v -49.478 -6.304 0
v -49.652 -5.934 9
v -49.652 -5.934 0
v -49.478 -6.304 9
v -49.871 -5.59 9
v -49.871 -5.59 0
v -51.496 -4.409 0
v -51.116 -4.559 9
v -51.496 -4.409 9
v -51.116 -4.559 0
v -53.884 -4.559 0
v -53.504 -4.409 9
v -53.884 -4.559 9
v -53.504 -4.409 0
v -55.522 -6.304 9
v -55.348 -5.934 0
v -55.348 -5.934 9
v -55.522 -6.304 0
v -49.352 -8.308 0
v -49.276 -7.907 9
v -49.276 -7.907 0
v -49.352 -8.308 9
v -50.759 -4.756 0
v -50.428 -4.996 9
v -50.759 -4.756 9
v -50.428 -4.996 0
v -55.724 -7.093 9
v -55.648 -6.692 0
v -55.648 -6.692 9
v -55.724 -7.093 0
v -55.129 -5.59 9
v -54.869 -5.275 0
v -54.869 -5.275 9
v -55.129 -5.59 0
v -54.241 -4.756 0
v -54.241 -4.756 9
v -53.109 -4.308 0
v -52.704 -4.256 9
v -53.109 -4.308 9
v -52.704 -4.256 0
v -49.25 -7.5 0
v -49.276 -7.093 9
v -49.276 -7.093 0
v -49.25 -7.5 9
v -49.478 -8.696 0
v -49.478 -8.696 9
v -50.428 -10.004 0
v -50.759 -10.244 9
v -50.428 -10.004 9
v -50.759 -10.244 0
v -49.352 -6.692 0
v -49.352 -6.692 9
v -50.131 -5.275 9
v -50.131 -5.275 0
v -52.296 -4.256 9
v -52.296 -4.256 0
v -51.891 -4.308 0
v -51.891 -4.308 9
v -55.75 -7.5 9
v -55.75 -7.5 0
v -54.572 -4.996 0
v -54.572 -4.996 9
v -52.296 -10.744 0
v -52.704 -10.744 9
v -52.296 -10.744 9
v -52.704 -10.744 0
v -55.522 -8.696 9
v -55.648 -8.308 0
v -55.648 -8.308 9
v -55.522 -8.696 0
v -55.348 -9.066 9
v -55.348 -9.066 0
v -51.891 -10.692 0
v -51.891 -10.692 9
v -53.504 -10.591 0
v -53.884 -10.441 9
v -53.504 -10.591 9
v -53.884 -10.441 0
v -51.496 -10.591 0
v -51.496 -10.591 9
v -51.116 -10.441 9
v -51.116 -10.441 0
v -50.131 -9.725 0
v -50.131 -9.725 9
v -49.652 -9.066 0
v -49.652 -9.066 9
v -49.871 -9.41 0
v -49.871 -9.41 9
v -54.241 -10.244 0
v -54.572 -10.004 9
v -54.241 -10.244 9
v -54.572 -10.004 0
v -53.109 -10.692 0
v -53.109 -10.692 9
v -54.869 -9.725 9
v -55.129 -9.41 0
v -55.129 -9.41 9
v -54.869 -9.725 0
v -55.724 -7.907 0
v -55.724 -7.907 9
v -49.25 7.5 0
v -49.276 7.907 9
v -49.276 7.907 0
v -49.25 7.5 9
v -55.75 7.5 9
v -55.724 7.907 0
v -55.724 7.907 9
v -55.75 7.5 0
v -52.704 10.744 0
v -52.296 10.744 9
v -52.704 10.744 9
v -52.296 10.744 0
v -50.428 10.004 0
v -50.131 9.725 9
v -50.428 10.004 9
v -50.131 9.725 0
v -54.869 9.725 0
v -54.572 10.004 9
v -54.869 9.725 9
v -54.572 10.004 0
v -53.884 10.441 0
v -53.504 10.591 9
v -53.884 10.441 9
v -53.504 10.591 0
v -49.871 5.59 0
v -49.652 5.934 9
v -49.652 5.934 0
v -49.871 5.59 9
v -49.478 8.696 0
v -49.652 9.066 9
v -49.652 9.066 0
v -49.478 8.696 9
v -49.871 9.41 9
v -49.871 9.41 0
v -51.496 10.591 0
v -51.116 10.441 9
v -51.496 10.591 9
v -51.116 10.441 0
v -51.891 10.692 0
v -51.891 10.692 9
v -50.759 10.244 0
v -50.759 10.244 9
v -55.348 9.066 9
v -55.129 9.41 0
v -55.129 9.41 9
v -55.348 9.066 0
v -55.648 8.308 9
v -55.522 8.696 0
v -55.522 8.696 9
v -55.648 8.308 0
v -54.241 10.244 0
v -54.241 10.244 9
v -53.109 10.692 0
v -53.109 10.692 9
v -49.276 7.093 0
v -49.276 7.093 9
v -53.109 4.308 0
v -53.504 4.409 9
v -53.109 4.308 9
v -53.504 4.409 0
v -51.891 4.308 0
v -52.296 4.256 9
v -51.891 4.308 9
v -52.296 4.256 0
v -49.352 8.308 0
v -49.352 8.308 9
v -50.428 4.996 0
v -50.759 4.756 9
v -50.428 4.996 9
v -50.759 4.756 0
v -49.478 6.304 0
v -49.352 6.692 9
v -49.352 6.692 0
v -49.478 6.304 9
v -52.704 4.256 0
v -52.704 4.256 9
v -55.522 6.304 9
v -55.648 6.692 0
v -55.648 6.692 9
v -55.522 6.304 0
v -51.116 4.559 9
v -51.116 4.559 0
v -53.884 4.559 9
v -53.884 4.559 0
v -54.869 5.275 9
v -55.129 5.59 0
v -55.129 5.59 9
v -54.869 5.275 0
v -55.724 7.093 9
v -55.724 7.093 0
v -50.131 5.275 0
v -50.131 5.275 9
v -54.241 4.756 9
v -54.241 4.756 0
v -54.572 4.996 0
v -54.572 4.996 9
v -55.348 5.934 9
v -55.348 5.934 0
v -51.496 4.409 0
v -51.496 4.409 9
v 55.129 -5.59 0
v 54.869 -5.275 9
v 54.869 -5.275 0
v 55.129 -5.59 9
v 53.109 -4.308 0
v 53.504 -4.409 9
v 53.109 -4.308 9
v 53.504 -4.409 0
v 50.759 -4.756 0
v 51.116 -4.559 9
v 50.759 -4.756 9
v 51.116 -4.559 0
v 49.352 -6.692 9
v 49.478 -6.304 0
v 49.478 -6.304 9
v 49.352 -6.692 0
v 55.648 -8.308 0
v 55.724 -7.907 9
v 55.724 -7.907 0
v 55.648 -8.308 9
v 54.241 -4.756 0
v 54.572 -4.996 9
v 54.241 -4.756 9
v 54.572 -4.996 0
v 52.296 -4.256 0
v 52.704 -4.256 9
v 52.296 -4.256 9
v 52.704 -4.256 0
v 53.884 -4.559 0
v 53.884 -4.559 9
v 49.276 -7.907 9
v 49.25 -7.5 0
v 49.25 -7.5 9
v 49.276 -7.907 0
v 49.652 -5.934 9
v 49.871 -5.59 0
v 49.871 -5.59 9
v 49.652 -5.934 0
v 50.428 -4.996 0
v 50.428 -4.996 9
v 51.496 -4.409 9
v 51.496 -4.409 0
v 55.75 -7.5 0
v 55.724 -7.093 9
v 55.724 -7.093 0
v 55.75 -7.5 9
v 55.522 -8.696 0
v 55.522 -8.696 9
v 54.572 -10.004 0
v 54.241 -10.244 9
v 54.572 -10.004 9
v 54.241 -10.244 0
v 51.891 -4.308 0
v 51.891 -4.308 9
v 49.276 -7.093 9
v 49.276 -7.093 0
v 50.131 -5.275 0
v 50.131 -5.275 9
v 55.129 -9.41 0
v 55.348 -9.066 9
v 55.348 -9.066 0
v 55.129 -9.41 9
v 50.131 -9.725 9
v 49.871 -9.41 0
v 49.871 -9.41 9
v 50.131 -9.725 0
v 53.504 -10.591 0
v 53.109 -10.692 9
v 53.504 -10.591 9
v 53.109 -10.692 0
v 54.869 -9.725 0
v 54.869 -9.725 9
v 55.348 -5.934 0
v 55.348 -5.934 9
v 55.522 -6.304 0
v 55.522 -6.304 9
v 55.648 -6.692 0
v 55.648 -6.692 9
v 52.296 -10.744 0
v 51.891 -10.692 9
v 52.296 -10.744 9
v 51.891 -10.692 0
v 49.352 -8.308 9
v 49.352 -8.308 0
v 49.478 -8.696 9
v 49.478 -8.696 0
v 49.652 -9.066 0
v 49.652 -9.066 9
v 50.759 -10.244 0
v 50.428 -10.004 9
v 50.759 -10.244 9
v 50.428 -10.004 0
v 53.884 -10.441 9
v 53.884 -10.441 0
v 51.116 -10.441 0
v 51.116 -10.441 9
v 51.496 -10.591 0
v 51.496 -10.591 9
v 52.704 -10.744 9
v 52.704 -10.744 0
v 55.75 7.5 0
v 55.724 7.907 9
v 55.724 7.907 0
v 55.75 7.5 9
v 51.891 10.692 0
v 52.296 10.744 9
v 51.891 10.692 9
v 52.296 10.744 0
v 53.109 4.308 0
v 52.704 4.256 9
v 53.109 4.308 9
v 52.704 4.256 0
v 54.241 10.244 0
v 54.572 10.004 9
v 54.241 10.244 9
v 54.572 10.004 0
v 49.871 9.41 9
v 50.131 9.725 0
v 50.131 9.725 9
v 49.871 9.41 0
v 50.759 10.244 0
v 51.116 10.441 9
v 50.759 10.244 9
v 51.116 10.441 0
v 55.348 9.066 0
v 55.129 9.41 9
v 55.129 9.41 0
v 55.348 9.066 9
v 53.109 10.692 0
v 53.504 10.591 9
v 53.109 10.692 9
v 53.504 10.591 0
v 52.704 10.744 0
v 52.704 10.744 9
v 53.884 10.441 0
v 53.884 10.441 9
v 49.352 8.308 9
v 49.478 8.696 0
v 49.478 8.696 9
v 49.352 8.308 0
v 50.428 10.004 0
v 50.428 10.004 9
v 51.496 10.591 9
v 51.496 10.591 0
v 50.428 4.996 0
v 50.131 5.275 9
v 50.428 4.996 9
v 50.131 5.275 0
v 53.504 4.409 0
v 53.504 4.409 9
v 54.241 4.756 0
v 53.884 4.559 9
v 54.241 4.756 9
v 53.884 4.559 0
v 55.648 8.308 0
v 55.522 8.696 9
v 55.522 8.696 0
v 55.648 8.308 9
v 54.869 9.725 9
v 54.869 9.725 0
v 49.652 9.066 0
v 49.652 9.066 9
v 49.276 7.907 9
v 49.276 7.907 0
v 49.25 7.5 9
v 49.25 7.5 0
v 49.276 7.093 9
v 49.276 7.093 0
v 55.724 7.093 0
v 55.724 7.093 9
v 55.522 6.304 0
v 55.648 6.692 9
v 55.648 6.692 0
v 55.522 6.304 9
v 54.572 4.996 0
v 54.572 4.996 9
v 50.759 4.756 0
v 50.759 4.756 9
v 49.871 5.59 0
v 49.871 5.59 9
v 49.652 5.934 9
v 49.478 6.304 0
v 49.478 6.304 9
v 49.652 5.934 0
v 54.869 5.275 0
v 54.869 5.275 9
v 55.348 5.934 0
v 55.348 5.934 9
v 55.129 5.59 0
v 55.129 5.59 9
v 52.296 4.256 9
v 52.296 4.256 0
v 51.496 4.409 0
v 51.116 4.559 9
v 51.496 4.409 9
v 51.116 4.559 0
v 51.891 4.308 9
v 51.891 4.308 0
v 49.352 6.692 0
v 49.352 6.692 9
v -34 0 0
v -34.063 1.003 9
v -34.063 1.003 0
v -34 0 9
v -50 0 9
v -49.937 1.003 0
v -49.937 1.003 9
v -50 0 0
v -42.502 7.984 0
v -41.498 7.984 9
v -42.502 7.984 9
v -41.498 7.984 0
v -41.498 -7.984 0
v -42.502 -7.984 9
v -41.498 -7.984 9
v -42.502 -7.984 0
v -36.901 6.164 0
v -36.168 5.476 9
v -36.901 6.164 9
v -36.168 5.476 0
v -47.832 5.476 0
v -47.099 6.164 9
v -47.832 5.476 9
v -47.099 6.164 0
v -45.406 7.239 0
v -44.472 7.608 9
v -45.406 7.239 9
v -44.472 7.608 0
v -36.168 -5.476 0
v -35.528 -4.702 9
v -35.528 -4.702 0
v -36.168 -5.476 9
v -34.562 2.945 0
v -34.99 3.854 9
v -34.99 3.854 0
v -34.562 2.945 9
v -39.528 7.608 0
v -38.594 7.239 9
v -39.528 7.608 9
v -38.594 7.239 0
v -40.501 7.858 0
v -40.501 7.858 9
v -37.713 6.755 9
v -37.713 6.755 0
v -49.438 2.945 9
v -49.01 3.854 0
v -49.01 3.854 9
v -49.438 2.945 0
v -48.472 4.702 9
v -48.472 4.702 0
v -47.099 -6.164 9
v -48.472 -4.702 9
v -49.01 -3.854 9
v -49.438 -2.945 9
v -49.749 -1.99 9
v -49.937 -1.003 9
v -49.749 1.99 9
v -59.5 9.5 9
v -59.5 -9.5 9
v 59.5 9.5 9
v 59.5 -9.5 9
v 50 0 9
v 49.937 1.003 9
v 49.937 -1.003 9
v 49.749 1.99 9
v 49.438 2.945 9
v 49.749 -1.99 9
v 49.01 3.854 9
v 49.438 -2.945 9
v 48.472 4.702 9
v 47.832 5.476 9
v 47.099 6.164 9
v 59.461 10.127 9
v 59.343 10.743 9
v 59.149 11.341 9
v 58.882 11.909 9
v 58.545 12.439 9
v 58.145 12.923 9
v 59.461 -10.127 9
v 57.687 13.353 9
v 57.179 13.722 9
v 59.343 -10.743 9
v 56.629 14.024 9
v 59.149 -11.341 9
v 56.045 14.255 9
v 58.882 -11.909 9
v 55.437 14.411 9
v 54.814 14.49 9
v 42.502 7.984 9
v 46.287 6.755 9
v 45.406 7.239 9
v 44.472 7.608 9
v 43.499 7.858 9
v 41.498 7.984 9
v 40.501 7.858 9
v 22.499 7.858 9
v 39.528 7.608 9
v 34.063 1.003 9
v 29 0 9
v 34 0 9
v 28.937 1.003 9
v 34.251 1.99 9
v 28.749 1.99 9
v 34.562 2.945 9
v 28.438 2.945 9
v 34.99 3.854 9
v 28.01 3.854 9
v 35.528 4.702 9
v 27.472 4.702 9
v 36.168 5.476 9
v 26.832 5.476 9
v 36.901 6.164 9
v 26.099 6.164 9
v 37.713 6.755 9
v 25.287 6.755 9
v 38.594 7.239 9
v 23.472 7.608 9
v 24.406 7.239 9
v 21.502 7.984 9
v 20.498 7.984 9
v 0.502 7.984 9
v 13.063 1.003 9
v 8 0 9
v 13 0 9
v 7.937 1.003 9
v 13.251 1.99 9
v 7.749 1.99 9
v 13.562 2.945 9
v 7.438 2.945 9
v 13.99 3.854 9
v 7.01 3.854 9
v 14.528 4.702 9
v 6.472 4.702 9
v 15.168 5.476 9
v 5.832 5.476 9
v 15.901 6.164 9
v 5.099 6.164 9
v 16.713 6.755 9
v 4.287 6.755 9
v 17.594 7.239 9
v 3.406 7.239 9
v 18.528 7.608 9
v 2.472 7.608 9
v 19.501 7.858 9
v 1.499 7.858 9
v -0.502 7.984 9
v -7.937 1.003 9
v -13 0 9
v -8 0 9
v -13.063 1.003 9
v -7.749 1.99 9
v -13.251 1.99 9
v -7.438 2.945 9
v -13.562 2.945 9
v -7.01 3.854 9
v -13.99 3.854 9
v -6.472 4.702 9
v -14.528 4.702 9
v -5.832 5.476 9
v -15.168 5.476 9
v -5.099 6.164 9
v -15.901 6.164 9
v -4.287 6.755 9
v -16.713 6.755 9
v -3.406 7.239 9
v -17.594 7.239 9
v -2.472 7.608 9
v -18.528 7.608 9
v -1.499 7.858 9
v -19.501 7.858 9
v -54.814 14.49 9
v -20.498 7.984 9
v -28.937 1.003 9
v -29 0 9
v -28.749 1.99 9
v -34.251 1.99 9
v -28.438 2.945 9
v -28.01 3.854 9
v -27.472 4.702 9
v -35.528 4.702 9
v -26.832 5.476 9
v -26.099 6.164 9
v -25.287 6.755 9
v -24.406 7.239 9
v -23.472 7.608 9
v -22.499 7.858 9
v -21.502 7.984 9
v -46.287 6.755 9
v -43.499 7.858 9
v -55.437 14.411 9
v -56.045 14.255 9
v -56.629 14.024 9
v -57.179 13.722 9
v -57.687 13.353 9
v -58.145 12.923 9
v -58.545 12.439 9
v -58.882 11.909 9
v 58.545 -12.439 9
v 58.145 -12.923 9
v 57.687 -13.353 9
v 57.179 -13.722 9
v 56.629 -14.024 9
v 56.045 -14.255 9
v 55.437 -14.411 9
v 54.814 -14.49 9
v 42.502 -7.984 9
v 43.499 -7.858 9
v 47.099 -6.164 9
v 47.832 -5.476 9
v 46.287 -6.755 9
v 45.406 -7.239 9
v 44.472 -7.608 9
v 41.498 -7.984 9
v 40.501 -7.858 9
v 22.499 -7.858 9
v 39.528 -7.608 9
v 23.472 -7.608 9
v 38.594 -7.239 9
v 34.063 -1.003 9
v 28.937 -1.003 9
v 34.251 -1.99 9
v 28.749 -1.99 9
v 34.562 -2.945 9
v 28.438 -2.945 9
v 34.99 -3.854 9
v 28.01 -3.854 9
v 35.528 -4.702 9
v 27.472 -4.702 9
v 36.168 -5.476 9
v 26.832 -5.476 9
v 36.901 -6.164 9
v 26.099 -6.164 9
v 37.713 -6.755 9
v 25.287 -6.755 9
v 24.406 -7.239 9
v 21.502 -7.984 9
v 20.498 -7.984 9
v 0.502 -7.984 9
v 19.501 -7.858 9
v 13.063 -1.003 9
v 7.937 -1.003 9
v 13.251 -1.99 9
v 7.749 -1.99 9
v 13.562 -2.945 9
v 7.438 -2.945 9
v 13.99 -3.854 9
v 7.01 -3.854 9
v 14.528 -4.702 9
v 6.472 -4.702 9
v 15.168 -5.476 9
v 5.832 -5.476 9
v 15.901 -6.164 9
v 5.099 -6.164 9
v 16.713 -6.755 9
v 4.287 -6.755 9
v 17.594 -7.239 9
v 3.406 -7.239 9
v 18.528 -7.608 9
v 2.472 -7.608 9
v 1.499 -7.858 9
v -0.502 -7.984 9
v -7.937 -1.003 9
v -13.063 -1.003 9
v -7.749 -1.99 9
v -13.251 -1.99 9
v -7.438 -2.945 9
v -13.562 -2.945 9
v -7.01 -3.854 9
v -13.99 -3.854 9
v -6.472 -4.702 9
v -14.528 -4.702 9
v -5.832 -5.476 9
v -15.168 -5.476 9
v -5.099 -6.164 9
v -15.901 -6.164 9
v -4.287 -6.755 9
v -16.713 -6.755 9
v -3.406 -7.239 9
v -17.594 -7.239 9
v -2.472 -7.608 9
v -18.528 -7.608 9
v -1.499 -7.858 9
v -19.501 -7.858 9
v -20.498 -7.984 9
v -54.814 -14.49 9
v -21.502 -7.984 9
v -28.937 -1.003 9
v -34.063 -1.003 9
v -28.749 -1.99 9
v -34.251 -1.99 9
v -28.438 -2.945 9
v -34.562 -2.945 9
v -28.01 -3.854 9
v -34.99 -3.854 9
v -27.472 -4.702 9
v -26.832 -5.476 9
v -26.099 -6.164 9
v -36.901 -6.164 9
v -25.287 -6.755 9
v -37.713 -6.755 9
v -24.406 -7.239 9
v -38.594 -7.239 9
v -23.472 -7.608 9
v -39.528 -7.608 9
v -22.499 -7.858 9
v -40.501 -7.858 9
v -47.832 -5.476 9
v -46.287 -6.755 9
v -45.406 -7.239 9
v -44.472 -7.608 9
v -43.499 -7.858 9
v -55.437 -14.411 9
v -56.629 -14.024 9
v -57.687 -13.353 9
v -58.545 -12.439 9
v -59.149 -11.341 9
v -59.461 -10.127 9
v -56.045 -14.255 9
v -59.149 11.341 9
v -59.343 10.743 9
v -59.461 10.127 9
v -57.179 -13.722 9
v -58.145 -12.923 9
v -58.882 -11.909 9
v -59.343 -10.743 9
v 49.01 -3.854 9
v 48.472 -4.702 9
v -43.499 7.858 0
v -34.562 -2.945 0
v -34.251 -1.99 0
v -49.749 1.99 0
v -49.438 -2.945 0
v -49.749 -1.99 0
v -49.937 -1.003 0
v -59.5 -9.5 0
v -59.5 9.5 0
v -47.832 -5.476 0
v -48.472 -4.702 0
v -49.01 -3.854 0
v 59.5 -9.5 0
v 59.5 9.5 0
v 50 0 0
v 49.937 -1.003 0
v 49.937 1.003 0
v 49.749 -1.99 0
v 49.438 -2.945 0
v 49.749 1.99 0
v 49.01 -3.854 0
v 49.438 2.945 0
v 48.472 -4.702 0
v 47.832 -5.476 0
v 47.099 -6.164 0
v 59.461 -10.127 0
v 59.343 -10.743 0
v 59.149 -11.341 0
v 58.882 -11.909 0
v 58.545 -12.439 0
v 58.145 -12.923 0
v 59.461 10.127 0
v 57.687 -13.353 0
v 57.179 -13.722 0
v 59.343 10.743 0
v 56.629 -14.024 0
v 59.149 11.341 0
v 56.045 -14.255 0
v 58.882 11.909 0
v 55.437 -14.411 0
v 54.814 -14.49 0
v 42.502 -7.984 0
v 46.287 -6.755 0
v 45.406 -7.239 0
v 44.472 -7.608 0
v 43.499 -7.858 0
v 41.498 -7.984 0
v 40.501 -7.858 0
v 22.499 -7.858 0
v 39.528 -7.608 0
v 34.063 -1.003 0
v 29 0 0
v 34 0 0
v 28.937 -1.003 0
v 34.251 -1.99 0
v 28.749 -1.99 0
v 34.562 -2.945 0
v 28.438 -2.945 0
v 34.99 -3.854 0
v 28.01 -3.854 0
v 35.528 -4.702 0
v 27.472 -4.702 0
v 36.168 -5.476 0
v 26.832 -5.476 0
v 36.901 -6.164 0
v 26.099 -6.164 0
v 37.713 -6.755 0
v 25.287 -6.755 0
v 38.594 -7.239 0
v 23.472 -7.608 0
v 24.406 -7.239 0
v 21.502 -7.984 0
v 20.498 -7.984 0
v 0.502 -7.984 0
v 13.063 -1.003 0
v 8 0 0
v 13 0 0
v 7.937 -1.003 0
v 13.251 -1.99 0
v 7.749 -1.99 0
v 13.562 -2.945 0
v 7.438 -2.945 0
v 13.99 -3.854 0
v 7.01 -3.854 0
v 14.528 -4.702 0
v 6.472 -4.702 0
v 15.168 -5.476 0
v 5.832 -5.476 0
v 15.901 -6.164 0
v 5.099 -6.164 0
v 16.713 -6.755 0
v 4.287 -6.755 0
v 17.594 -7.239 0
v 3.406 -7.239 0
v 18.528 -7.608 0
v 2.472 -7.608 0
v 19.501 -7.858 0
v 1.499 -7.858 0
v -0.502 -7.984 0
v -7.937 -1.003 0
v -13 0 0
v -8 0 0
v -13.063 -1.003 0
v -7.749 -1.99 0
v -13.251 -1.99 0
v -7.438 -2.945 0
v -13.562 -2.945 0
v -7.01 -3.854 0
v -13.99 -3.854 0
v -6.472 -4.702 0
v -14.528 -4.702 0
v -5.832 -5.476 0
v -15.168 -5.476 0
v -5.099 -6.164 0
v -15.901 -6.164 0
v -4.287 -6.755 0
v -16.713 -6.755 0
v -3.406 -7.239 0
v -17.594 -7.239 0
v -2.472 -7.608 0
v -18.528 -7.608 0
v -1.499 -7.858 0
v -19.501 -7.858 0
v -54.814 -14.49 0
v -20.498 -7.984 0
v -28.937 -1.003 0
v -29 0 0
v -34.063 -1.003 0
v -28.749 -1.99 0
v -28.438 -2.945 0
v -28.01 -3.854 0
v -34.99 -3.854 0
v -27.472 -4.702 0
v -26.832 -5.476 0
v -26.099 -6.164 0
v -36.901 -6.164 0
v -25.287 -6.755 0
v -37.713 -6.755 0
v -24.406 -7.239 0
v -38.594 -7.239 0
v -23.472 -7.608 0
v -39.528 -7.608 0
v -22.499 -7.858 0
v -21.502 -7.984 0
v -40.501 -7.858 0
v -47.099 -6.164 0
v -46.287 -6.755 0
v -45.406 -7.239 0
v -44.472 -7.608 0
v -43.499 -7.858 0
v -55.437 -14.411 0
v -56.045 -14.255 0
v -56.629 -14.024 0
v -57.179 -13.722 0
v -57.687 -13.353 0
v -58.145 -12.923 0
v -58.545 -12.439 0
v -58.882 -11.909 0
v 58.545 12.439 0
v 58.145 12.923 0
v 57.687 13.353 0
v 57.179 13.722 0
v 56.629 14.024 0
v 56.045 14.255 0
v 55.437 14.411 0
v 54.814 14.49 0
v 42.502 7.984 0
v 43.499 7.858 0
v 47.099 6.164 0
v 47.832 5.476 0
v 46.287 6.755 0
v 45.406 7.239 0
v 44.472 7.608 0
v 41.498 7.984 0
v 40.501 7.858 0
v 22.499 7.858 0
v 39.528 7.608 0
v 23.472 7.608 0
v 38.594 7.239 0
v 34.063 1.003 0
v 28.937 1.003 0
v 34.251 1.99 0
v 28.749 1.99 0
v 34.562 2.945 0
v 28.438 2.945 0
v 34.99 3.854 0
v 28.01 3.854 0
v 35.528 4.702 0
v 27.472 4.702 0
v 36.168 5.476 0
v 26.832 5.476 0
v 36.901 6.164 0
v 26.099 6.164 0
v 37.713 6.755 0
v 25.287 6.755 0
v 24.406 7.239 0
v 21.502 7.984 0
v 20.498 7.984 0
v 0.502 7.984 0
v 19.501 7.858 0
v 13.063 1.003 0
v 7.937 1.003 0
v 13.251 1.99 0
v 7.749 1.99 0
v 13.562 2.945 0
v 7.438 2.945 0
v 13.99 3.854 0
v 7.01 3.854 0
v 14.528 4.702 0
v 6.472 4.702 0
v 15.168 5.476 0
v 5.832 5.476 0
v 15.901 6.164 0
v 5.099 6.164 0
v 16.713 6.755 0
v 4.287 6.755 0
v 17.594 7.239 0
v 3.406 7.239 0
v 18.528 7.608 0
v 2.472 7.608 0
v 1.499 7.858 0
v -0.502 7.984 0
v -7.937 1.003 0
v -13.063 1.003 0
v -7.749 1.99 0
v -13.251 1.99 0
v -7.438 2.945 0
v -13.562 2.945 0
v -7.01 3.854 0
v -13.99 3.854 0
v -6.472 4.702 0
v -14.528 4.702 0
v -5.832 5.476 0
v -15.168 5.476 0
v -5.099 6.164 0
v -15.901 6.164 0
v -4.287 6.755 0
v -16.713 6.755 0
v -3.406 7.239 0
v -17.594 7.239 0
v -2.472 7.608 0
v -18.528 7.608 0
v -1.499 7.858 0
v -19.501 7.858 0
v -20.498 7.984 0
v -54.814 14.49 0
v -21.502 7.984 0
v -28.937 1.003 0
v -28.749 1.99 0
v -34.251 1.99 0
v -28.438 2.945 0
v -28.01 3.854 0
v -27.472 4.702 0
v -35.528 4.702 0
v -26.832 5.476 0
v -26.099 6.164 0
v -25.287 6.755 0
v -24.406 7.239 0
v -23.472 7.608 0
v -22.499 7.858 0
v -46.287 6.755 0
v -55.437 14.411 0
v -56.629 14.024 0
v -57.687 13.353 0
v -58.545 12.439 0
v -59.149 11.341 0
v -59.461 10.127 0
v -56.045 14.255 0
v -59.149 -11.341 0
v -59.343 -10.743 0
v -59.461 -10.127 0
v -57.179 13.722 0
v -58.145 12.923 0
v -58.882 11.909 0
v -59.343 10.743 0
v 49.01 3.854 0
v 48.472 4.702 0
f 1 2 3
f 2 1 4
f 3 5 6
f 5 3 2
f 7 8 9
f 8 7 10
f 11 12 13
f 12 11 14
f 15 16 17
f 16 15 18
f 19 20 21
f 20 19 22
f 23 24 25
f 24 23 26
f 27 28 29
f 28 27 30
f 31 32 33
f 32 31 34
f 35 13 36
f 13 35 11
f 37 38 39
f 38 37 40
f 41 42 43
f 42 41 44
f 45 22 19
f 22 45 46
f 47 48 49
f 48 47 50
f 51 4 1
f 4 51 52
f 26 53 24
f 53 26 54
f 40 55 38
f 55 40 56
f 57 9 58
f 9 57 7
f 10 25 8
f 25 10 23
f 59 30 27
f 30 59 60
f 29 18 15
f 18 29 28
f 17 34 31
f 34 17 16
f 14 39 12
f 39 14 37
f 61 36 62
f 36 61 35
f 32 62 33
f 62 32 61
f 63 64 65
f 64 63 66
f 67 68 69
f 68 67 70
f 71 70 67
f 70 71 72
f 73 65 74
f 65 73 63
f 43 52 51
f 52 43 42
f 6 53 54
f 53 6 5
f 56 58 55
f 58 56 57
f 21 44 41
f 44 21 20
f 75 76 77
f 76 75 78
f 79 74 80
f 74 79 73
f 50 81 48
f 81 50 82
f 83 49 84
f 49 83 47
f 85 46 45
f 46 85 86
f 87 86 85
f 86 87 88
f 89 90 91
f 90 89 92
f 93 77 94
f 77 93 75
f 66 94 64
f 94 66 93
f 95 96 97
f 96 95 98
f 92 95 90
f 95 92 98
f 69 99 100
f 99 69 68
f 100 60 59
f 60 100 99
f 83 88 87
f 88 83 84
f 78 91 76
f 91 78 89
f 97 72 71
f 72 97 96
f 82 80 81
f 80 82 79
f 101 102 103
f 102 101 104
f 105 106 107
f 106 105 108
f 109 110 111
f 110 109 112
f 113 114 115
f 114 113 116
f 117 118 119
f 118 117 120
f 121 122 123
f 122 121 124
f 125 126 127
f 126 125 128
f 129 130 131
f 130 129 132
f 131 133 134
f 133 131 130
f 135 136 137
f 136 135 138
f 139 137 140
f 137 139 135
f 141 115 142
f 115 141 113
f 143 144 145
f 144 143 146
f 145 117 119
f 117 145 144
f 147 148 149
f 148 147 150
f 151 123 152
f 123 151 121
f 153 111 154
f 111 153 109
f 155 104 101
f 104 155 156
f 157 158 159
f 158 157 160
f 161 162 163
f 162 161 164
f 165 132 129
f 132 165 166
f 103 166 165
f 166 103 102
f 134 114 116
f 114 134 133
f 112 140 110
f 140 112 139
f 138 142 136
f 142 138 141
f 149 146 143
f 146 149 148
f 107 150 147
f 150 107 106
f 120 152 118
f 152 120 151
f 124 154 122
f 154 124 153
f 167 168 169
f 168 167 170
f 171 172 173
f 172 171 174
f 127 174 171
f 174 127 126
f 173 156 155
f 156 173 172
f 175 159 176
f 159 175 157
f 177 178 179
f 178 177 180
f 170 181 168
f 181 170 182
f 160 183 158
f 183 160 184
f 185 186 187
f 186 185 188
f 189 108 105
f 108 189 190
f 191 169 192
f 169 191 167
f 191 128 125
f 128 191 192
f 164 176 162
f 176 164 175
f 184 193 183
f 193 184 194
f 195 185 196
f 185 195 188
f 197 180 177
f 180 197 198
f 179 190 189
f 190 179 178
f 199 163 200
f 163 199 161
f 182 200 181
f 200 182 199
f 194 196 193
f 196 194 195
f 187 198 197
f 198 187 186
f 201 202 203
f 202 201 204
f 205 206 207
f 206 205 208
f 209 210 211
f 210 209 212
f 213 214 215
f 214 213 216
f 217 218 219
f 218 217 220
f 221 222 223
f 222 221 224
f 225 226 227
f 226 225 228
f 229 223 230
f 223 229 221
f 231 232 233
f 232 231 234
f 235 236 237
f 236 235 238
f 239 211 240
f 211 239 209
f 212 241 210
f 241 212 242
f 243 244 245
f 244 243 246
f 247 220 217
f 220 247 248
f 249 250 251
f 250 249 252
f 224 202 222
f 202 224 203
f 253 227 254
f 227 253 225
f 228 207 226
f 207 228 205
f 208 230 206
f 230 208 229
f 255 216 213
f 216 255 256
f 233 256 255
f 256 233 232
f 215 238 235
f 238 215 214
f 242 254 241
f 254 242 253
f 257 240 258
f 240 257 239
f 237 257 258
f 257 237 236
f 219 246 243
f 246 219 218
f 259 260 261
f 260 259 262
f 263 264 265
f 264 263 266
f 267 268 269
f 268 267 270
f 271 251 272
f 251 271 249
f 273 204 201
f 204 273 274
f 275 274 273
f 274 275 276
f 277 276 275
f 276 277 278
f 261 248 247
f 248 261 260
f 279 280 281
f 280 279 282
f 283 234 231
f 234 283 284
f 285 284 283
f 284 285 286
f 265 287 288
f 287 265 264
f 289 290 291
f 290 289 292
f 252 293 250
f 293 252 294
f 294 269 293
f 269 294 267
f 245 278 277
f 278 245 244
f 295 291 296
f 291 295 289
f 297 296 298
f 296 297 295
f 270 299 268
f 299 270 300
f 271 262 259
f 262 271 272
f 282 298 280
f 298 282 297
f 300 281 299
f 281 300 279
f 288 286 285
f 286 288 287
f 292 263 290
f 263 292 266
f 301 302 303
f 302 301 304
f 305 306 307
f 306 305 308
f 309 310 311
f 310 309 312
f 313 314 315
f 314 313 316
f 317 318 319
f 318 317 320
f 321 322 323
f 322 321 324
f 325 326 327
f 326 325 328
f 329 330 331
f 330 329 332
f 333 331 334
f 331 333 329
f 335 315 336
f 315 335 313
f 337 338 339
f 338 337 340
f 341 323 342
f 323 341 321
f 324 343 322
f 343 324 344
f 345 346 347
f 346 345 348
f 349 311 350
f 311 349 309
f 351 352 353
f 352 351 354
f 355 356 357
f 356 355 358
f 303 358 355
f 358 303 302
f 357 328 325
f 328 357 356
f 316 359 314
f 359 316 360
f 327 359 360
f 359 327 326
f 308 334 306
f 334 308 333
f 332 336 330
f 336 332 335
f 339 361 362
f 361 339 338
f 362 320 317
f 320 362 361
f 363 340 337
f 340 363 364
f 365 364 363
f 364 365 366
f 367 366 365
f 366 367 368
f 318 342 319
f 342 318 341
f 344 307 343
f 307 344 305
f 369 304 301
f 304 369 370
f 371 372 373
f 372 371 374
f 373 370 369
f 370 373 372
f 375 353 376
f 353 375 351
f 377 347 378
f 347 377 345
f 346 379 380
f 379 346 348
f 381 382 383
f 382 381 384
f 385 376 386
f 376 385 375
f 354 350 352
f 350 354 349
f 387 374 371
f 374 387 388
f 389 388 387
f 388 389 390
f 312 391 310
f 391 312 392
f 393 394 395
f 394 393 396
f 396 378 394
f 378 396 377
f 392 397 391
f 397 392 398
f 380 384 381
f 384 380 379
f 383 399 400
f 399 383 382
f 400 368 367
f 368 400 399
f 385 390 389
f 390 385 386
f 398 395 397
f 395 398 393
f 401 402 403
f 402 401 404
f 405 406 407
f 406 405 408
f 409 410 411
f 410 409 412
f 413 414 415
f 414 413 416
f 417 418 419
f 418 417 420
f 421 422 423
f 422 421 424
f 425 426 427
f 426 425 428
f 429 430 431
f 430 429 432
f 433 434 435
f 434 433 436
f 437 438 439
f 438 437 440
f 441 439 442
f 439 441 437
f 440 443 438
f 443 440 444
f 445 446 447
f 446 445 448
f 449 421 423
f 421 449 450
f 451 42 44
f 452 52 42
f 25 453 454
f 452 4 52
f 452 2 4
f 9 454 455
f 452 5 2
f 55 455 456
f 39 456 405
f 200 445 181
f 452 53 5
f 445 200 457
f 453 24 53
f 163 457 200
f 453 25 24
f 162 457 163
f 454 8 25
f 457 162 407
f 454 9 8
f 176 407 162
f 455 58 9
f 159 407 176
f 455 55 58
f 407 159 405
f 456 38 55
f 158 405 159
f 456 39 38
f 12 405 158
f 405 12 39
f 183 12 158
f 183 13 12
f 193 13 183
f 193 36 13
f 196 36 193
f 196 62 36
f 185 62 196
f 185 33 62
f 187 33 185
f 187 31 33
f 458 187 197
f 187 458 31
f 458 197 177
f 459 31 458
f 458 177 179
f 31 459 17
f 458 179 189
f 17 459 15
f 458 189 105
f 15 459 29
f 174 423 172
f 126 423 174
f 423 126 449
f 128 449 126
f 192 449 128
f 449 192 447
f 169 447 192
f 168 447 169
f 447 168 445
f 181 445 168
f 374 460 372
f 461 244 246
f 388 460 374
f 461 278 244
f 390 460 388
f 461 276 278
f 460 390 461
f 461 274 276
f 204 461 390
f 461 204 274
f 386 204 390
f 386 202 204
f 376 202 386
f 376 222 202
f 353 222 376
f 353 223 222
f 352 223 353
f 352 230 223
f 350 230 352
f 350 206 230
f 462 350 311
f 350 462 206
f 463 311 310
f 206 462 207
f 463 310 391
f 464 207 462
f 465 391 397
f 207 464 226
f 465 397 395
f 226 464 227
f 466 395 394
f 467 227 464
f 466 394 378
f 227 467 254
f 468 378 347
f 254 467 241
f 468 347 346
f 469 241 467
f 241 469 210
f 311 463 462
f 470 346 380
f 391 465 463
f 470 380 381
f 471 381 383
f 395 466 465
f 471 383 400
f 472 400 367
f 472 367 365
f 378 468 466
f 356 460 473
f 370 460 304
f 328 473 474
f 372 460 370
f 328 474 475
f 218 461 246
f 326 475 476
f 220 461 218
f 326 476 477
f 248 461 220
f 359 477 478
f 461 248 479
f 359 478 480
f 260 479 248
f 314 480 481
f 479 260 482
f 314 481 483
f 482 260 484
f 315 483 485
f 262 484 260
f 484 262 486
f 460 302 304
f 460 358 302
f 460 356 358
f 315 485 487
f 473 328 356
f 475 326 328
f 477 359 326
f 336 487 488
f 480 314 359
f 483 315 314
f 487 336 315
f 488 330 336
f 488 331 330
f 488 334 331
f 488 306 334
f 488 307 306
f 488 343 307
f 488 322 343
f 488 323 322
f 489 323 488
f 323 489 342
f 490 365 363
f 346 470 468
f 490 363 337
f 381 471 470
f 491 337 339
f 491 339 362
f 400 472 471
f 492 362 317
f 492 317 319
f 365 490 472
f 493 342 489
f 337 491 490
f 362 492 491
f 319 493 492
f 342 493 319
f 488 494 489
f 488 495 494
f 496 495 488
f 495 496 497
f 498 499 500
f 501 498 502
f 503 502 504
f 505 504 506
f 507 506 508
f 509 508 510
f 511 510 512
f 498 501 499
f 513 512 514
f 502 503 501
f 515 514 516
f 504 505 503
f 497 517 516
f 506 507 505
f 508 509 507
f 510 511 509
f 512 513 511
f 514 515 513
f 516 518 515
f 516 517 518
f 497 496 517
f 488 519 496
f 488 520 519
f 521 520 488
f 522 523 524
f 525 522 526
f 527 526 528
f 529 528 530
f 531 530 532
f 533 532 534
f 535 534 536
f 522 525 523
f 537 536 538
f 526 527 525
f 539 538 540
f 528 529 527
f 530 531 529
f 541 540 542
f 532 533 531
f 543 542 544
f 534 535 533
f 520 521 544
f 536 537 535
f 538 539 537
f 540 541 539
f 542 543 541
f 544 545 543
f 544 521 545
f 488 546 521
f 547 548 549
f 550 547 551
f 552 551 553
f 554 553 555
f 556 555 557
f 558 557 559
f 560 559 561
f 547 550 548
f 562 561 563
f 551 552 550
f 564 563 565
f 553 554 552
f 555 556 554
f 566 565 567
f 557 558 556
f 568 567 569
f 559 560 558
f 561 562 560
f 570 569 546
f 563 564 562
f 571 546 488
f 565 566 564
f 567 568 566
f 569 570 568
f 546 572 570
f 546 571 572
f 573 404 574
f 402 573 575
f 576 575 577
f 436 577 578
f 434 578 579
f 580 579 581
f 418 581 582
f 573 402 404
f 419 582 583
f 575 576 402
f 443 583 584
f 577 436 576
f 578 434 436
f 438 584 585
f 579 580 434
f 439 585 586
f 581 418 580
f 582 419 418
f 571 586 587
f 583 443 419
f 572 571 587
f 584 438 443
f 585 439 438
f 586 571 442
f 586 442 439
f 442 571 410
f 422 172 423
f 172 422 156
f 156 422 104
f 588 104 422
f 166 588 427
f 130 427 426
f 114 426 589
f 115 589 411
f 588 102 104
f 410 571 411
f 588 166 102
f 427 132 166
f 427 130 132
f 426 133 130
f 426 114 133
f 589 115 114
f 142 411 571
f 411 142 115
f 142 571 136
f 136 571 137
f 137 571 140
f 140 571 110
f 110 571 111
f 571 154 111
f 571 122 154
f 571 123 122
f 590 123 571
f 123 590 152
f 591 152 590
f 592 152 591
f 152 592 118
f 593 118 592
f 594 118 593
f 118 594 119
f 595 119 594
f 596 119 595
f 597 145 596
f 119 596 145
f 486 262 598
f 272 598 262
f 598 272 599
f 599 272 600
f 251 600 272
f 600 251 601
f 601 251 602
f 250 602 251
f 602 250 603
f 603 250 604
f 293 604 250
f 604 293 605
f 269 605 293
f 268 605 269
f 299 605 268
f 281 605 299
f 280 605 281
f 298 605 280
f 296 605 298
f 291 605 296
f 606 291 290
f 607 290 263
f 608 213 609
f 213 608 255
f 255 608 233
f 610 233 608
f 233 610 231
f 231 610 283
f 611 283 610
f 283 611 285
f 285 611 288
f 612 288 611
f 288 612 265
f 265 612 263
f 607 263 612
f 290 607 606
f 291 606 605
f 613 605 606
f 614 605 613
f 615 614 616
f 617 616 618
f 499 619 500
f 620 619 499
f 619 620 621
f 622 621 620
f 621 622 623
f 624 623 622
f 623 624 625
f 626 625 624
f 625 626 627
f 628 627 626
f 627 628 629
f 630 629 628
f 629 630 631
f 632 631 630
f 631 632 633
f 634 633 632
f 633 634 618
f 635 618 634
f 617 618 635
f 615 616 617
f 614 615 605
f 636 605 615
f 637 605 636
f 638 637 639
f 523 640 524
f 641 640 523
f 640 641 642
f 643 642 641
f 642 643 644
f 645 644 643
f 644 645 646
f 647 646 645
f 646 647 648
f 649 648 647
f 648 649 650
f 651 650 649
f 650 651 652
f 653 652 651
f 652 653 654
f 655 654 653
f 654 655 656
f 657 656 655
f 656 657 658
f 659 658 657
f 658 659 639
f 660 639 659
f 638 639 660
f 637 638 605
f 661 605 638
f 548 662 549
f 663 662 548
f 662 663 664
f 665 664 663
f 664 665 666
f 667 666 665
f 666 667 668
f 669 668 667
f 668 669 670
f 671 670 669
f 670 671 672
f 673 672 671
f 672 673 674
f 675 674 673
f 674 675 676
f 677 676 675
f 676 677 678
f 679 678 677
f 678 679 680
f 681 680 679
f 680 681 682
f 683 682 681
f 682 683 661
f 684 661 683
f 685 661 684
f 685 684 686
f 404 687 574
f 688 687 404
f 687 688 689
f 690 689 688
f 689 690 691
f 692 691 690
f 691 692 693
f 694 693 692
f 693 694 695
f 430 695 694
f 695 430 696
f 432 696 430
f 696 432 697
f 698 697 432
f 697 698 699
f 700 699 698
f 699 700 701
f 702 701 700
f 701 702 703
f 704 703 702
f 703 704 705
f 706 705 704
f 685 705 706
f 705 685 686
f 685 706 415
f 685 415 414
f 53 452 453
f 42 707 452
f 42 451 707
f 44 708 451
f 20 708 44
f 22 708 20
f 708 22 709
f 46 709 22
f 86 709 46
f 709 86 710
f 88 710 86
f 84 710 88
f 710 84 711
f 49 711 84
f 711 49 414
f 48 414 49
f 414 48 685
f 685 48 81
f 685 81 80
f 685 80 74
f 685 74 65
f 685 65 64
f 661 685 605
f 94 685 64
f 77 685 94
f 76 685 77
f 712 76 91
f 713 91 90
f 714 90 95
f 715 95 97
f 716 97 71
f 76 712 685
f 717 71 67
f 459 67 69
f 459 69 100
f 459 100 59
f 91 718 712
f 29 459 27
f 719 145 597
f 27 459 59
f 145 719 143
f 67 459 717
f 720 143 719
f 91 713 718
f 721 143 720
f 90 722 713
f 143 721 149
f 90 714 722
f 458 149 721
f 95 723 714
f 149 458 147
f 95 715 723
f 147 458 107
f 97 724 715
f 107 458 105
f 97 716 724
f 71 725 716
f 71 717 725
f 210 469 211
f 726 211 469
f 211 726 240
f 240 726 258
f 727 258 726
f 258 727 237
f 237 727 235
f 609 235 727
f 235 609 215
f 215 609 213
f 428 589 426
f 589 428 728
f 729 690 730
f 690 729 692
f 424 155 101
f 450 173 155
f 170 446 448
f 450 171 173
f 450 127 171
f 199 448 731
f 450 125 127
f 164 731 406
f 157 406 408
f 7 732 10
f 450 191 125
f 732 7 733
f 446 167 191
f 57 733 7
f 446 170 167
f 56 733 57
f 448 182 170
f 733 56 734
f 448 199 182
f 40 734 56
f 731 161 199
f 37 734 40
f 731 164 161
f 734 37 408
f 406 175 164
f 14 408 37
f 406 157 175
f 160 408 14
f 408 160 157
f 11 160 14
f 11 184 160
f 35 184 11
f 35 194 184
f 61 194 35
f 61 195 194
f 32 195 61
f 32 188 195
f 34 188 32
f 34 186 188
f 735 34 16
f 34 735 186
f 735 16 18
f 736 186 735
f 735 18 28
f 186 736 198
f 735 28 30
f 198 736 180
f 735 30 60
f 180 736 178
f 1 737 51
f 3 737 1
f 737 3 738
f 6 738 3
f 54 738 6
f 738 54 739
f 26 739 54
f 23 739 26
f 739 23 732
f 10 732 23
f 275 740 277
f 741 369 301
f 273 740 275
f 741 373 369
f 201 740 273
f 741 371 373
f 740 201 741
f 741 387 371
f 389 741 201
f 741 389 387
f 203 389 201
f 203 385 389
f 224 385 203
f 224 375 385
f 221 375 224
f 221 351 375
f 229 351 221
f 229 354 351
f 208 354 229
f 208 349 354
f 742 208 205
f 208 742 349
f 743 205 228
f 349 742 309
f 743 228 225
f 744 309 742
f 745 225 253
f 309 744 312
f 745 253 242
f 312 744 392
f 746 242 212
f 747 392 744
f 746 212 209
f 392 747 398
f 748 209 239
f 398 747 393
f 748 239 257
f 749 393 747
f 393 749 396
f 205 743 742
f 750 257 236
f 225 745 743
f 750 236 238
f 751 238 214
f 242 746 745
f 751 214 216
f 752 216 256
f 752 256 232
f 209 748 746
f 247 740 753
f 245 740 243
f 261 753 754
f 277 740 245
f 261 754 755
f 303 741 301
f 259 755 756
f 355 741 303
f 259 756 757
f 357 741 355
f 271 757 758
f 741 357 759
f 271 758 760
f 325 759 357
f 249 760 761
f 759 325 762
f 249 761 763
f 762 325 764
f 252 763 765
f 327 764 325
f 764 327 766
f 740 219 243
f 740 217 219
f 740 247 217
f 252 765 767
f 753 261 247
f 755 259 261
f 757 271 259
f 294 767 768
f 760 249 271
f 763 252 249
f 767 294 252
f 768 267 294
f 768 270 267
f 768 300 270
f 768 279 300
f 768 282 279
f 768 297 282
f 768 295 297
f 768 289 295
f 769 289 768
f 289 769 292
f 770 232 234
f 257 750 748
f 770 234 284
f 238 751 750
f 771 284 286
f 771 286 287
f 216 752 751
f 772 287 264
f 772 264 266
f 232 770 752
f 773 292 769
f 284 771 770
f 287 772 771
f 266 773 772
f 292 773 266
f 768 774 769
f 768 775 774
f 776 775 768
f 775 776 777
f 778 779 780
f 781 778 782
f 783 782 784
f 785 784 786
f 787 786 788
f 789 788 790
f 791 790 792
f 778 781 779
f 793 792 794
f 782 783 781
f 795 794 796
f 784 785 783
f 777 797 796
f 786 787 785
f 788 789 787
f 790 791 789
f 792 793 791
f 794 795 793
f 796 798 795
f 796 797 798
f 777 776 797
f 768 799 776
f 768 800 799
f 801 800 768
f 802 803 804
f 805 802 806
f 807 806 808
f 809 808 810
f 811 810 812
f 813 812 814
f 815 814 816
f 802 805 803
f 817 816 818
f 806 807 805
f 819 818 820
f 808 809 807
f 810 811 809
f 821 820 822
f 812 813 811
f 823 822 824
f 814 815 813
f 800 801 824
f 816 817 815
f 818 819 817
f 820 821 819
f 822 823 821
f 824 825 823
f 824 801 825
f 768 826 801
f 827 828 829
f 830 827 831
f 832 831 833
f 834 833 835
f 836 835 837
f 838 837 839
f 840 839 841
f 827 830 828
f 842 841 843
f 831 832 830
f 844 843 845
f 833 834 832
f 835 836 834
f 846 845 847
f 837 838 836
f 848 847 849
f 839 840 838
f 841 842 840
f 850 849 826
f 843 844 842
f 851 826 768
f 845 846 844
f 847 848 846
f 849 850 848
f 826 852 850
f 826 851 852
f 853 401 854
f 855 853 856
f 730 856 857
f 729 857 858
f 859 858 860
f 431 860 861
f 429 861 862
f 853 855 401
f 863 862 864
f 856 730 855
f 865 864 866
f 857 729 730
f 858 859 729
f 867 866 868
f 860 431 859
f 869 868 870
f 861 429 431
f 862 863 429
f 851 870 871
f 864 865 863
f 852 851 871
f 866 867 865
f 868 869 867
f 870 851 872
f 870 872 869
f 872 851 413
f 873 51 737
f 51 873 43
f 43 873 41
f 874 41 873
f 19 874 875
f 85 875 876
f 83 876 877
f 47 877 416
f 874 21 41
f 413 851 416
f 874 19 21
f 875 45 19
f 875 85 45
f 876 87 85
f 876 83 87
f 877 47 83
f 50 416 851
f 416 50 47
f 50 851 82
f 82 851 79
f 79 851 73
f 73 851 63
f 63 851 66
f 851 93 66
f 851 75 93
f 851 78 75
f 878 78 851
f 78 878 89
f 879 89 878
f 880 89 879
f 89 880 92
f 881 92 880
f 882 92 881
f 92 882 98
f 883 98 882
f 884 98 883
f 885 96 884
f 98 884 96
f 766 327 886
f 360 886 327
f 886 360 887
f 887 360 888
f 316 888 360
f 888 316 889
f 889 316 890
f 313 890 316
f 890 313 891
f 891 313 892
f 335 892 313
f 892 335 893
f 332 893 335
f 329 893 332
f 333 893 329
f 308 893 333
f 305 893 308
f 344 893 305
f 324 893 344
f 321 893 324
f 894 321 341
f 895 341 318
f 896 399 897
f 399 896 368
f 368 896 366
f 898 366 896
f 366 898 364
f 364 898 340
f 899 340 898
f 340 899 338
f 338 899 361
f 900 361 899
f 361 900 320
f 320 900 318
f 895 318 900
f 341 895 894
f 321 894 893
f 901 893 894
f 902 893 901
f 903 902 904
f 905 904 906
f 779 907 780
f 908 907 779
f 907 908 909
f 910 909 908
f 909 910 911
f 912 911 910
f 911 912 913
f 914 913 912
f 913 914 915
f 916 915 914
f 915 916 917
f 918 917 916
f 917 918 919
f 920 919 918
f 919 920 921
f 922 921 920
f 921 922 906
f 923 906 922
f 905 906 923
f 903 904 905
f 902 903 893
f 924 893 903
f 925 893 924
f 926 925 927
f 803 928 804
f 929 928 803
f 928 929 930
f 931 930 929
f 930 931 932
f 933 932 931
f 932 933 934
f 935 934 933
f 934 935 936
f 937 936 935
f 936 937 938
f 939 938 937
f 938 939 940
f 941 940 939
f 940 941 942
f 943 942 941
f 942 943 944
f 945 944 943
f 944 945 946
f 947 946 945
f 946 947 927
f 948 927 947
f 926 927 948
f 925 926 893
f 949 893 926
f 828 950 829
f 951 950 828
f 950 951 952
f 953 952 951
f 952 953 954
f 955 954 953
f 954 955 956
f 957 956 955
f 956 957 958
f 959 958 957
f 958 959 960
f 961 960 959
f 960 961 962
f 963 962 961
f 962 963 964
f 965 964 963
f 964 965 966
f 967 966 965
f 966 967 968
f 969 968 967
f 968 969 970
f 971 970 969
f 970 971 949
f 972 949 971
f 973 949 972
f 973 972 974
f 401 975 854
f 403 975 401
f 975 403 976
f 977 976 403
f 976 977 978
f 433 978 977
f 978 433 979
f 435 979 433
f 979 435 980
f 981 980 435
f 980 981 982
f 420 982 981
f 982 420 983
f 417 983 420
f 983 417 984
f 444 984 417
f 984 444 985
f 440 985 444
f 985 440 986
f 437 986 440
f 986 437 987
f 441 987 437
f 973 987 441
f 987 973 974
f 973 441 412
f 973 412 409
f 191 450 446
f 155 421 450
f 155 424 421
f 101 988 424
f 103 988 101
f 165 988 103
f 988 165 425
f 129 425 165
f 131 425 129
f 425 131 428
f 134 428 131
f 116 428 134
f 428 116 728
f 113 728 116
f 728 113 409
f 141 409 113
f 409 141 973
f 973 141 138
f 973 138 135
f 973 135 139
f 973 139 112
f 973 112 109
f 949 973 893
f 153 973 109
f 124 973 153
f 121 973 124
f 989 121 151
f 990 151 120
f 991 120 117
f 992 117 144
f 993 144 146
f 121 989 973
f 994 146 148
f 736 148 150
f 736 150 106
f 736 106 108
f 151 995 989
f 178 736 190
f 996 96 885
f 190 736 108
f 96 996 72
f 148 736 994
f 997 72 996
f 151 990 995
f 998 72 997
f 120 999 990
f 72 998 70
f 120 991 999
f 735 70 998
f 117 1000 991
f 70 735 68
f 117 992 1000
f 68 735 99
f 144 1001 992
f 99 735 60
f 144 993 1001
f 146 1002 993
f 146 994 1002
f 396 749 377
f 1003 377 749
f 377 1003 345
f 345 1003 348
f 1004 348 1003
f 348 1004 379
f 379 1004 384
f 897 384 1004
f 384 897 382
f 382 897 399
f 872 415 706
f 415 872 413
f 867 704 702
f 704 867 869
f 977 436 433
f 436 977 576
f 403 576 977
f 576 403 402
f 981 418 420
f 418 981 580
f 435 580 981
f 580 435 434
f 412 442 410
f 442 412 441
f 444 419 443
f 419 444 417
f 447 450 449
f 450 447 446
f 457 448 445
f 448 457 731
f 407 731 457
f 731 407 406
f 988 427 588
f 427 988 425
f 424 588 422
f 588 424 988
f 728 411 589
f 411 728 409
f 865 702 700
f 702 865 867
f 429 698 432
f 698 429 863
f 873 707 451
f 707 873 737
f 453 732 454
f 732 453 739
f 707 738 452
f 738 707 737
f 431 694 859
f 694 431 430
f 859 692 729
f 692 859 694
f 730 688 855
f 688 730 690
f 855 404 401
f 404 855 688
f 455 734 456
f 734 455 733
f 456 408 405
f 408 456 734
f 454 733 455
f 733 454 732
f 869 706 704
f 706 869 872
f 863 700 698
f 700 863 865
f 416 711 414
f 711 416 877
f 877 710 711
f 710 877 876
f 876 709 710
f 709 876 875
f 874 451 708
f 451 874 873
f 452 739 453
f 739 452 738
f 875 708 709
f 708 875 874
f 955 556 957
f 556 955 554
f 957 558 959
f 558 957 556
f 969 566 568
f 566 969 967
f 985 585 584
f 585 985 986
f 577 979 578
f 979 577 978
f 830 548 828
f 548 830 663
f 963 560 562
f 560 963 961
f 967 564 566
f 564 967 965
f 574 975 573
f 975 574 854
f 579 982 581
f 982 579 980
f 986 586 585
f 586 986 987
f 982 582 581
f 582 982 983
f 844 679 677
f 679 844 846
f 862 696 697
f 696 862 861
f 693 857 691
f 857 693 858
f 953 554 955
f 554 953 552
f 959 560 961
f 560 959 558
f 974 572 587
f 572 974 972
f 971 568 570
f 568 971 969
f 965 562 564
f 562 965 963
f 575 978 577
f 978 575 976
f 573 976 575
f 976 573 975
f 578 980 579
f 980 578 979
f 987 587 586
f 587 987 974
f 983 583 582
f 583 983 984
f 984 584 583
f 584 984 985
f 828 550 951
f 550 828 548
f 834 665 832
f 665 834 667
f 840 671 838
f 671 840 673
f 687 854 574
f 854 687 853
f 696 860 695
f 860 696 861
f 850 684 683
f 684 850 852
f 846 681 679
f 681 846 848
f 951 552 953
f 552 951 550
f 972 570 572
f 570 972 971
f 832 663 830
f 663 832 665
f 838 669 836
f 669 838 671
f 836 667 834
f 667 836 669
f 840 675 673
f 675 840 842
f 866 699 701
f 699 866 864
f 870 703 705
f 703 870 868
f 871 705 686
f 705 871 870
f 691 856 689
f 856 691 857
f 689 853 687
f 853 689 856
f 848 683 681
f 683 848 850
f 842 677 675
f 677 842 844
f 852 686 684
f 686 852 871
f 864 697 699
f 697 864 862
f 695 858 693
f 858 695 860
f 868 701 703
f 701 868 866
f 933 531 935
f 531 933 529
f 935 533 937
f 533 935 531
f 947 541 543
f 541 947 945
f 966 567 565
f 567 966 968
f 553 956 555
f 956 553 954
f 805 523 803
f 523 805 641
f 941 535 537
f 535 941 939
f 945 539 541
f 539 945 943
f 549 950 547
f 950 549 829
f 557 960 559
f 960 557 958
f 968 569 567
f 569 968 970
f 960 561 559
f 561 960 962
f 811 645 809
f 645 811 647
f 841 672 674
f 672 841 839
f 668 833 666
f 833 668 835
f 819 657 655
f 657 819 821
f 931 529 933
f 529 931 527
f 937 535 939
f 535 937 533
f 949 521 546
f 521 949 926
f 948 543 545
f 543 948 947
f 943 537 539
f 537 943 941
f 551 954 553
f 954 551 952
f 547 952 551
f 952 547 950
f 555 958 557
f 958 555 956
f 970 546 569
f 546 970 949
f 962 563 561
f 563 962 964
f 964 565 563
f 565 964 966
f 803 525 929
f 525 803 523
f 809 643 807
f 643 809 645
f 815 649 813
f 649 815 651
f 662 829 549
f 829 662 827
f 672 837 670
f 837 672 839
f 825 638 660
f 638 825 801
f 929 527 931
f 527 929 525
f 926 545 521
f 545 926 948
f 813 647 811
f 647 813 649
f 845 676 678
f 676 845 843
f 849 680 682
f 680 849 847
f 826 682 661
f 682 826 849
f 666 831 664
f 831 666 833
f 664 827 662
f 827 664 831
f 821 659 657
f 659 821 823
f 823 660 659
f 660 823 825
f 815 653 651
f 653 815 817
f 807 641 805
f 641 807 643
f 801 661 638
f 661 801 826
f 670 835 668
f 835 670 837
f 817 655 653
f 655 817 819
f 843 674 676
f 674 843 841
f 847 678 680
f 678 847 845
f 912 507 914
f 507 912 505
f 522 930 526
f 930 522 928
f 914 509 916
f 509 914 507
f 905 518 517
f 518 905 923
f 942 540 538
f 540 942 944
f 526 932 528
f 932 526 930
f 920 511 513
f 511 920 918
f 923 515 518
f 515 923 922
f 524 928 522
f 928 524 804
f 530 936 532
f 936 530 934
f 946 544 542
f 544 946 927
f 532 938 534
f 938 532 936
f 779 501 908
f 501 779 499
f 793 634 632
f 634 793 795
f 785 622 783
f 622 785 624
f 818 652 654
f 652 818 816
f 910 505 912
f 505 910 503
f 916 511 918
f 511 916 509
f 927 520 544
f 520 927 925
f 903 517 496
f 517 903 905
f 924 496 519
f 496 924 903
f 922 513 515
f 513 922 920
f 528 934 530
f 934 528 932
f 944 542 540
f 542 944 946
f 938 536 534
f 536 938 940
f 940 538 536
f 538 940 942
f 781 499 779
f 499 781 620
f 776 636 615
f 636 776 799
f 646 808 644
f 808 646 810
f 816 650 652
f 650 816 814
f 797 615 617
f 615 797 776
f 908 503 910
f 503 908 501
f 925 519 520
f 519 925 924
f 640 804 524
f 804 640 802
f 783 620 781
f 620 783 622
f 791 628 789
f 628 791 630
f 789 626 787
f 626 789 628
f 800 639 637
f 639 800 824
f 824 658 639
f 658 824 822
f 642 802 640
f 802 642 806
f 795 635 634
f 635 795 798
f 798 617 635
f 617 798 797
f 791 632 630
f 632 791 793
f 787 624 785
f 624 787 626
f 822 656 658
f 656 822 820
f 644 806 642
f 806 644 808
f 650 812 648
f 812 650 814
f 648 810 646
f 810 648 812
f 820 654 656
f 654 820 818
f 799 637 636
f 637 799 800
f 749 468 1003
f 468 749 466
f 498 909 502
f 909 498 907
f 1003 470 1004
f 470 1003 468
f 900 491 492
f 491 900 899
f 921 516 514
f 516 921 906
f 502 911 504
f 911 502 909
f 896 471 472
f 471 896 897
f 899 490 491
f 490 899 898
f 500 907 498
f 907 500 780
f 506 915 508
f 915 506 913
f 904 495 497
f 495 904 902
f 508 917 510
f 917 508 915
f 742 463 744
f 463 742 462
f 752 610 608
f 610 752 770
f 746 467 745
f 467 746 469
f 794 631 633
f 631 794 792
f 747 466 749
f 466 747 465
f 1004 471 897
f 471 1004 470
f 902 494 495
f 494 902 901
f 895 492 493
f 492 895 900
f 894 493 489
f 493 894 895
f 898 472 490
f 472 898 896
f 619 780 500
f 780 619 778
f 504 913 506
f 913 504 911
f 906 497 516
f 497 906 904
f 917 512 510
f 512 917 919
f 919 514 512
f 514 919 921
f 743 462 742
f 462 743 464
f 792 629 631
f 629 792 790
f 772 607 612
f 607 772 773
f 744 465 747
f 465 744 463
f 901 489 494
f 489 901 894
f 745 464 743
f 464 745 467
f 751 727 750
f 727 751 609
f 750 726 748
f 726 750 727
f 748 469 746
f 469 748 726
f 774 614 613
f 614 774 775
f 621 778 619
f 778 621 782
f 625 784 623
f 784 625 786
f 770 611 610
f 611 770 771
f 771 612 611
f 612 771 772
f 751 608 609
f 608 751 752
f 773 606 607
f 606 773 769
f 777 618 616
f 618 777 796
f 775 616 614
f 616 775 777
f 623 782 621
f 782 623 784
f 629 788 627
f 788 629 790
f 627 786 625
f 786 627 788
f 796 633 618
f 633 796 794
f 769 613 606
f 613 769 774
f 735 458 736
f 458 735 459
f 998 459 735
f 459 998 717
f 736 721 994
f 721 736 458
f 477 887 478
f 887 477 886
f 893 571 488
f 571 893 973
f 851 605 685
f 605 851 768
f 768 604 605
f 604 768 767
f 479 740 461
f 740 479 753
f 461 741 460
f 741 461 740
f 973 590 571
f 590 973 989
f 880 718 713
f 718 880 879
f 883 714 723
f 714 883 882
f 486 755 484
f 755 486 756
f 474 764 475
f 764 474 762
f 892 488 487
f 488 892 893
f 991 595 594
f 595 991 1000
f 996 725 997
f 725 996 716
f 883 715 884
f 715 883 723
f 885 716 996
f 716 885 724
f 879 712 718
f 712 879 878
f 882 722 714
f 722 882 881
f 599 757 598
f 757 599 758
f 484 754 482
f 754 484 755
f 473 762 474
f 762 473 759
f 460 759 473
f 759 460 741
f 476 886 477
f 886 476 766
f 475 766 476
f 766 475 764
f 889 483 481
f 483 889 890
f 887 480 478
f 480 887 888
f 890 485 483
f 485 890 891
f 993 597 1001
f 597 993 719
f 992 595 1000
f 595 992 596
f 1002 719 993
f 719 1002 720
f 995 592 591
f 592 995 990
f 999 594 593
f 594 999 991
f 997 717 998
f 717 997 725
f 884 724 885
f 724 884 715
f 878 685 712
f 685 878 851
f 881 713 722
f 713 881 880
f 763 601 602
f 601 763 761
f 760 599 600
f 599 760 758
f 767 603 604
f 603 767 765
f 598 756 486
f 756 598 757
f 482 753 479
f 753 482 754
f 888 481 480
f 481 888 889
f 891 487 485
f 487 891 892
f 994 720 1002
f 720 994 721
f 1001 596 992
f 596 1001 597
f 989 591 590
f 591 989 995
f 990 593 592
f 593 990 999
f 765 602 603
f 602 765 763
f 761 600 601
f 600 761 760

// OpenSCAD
$fn = 50;


difference() {
	union() {
		hull() {
			translate(v = [-54.5000000000, 9.5000000000, 0]) {
				cylinder(h = 9, r = 5);
			}
			translate(v = [54.5000000000, 9.5000000000, 0]) {
				cylinder(h = 9, r = 5);
			}
			translate(v = [-54.5000000000, -9.5000000000, 0]) {
				cylinder(h = 9, r = 5);
			}
			translate(v = [54.5000000000, -9.5000000000, 0]) {
				cylinder(h = 9, r = 5);
			}
		}
	}
	union() {
		#translate(v = [-52.5000000000, -7.5000000000, -100.0000000000]) {
			cylinder(h = 200, r = 3.2500000000);
		}
		#translate(v = [-52.5000000000, 7.5000000000, -100.0000000000]) {
			cylinder(h = 200, r = 3.2500000000);
		}
		#translate(v = [52.5000000000, -7.5000000000, -100.0000000000]) {
			cylinder(h = 200, r = 3.2500000000);
		}
		#translate(v = [52.5000000000, 7.5000000000, -100.0000000000]) {
			cylinder(h = 200, r = 3.2500000000);
		}
		#translate(v = [-42.0000000000, 0, 0]) {
			cylinder(h = 9, r = 8.0000000000);
		}
		#translate(v = [-21.0000000000, 0, 0]) {
			cylinder(h = 9, r = 8.0000000000);
		}
		#cylinder(h = 9, r = 8.0000000000);
		#translate(v = [21.0000000000, 0, 0]) {
			cylinder(h = 9, r = 8.0000000000);
		}
		#translate(v = [42.0000000000, 0, 0]) {
			cylinder(h = 9, r = 8.0000000000);
		}
	}
}
